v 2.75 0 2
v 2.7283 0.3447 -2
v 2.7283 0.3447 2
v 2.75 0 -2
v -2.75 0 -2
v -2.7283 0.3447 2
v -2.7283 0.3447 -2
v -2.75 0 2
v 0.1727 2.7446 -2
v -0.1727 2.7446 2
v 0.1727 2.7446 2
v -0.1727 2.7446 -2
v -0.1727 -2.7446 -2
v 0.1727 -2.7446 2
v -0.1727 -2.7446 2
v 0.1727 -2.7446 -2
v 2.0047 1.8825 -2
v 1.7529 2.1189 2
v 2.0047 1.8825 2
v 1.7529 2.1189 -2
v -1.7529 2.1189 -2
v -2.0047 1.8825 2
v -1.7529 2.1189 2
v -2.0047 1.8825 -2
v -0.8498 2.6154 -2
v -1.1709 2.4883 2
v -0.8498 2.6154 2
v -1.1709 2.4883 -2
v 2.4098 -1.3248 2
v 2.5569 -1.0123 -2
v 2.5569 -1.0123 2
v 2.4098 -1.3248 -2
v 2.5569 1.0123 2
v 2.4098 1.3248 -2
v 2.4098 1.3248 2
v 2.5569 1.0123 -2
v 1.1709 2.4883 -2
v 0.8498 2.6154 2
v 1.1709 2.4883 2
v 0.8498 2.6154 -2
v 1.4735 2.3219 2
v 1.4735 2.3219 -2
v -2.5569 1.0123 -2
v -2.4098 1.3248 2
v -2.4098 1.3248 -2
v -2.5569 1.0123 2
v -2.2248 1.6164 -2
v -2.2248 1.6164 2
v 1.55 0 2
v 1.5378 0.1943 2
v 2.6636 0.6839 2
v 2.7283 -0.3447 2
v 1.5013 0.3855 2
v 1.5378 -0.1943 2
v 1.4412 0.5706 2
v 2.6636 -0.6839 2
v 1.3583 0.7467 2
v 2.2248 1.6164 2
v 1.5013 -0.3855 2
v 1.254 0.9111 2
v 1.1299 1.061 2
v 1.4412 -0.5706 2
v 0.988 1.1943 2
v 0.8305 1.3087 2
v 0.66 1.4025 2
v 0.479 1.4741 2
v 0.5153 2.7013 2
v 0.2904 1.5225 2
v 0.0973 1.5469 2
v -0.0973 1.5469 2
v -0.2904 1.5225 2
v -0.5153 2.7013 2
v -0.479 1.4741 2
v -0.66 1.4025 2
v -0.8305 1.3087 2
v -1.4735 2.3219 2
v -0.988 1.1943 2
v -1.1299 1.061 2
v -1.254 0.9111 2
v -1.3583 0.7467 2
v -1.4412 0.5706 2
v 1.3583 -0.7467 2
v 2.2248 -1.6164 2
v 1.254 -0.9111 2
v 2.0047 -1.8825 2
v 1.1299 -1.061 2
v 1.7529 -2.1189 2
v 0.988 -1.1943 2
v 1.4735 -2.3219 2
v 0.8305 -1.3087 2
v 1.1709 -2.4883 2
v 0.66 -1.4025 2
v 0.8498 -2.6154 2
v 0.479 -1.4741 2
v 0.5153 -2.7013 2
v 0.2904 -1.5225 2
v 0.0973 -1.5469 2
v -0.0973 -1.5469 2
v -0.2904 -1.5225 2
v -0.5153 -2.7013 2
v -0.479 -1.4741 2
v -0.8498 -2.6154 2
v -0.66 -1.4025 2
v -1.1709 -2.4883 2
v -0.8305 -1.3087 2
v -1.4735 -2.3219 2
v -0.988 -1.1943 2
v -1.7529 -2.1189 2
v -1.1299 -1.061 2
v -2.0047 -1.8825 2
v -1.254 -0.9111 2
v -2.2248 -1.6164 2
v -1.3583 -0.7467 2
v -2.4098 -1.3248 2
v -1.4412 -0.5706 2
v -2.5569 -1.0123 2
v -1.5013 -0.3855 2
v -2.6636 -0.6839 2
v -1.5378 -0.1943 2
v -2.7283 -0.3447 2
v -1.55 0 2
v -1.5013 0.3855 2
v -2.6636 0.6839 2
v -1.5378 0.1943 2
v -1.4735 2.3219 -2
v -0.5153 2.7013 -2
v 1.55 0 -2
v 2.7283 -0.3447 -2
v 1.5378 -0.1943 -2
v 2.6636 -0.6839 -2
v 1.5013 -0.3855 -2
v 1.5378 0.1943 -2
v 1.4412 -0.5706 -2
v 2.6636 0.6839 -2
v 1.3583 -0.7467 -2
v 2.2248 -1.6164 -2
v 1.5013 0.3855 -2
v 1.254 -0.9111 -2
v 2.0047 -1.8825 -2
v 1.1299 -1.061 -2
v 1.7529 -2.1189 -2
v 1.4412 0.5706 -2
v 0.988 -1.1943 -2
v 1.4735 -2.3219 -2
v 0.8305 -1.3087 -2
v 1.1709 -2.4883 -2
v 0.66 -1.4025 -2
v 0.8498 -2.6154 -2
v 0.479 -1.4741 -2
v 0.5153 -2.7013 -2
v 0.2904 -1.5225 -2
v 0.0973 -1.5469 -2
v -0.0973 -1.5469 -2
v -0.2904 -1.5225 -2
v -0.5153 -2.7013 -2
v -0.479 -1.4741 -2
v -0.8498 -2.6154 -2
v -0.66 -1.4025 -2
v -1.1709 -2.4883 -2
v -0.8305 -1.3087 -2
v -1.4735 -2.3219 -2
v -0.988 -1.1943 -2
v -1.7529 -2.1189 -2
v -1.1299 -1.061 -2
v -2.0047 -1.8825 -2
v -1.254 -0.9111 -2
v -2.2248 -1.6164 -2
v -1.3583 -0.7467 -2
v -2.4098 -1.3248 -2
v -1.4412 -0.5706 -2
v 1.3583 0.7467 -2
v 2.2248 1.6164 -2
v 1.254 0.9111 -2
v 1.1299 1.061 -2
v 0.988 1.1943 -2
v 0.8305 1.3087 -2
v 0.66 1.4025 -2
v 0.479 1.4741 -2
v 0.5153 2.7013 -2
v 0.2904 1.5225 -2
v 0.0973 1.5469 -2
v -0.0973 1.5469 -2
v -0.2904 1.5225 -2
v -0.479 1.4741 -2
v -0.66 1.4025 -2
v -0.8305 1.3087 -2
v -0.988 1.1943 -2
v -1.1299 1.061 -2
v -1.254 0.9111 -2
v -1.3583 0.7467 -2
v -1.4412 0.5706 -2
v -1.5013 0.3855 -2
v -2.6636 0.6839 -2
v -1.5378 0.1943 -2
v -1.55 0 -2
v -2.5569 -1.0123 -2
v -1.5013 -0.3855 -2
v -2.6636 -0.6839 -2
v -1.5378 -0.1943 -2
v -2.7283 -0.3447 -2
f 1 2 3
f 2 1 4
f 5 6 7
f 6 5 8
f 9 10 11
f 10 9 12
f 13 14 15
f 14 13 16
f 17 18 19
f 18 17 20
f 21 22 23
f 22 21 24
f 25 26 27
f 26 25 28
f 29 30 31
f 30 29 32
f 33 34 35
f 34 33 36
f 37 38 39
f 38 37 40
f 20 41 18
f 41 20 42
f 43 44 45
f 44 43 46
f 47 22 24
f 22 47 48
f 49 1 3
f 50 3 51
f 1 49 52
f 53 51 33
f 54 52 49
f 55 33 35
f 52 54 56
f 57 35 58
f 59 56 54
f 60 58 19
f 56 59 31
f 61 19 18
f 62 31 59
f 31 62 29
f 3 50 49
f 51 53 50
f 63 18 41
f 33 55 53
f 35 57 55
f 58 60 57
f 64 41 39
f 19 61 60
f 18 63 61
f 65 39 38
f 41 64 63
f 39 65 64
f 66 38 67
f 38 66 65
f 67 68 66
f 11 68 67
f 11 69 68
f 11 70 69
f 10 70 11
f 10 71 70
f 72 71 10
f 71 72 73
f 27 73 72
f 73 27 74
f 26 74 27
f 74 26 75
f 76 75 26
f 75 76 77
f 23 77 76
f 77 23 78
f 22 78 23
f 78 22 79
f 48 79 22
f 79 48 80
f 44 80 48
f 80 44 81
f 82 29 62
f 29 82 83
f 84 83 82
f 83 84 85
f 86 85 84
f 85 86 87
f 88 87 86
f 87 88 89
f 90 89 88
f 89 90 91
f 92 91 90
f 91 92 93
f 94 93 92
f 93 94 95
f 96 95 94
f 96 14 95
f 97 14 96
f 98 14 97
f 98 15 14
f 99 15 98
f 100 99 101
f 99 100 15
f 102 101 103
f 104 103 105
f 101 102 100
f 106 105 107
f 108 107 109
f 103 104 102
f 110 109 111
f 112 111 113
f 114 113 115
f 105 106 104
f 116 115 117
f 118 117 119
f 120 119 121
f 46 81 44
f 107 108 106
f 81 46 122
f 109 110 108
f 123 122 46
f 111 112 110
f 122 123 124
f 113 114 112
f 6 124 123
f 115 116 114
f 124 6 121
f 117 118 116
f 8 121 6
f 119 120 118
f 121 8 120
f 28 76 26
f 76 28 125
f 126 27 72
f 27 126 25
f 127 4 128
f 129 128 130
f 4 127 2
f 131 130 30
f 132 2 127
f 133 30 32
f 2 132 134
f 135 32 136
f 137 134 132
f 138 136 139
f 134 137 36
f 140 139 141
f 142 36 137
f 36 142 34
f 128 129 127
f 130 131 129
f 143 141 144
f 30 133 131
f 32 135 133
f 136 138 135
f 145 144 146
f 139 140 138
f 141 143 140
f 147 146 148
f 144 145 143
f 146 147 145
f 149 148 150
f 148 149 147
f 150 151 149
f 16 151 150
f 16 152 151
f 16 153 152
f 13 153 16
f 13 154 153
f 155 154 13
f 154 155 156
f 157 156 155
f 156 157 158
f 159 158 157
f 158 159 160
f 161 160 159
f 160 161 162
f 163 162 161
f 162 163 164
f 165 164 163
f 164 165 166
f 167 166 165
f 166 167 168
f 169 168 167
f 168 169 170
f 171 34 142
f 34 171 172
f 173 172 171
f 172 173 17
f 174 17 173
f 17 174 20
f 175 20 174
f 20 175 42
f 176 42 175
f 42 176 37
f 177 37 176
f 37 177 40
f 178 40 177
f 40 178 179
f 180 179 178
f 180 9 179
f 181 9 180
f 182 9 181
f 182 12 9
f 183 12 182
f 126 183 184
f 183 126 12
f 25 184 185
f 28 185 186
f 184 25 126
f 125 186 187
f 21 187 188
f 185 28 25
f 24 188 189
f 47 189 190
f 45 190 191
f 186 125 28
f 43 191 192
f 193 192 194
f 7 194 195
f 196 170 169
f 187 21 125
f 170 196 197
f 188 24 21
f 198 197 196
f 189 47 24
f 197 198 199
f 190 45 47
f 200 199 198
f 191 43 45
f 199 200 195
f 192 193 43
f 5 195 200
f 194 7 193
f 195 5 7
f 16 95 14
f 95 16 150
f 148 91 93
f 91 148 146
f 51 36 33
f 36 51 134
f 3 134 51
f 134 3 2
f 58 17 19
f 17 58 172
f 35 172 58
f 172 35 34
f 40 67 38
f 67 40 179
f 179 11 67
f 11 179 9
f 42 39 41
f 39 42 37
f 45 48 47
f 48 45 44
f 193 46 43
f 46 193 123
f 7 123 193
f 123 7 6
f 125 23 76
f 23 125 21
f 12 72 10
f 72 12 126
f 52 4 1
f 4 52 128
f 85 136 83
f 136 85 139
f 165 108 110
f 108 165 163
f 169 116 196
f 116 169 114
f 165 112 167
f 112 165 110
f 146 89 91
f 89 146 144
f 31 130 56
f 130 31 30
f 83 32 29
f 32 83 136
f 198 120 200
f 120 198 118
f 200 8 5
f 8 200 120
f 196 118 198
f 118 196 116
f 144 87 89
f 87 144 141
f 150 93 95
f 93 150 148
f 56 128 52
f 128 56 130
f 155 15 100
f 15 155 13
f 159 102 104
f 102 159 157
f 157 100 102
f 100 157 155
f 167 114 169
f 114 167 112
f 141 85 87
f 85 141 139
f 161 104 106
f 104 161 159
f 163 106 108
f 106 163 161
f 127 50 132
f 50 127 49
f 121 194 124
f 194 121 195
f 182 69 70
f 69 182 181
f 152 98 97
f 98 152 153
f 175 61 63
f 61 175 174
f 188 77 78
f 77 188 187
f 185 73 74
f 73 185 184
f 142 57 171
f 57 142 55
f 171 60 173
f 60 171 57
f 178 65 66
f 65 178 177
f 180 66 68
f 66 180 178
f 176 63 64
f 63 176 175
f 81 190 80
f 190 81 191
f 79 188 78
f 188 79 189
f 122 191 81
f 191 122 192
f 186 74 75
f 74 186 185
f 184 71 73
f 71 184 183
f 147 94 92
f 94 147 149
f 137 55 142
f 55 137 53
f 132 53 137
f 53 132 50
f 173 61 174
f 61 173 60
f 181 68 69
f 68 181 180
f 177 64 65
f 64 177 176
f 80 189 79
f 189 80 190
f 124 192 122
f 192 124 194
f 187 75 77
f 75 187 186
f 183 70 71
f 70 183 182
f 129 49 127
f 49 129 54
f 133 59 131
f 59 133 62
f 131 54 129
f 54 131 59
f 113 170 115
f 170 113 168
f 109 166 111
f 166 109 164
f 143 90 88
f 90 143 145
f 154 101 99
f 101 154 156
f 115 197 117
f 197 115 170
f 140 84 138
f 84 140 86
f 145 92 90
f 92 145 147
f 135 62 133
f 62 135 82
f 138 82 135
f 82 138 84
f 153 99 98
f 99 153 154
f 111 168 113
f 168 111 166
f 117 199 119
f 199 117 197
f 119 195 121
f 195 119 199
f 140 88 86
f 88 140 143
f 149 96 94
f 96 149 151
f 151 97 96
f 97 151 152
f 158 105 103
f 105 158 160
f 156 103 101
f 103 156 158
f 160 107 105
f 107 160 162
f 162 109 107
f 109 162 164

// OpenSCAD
$fn = 50;


difference() {
	union() {
		translate(v = [0, 0, -2.0000000000]) {
			cylinder(h = 4, r = 2.7500000000);
		}
	}
	union() {
		translate(v = [0, 0, -100.0000000000]) {
			cylinder(h = 200, r = 1.5500000000);
		}
	}
}
